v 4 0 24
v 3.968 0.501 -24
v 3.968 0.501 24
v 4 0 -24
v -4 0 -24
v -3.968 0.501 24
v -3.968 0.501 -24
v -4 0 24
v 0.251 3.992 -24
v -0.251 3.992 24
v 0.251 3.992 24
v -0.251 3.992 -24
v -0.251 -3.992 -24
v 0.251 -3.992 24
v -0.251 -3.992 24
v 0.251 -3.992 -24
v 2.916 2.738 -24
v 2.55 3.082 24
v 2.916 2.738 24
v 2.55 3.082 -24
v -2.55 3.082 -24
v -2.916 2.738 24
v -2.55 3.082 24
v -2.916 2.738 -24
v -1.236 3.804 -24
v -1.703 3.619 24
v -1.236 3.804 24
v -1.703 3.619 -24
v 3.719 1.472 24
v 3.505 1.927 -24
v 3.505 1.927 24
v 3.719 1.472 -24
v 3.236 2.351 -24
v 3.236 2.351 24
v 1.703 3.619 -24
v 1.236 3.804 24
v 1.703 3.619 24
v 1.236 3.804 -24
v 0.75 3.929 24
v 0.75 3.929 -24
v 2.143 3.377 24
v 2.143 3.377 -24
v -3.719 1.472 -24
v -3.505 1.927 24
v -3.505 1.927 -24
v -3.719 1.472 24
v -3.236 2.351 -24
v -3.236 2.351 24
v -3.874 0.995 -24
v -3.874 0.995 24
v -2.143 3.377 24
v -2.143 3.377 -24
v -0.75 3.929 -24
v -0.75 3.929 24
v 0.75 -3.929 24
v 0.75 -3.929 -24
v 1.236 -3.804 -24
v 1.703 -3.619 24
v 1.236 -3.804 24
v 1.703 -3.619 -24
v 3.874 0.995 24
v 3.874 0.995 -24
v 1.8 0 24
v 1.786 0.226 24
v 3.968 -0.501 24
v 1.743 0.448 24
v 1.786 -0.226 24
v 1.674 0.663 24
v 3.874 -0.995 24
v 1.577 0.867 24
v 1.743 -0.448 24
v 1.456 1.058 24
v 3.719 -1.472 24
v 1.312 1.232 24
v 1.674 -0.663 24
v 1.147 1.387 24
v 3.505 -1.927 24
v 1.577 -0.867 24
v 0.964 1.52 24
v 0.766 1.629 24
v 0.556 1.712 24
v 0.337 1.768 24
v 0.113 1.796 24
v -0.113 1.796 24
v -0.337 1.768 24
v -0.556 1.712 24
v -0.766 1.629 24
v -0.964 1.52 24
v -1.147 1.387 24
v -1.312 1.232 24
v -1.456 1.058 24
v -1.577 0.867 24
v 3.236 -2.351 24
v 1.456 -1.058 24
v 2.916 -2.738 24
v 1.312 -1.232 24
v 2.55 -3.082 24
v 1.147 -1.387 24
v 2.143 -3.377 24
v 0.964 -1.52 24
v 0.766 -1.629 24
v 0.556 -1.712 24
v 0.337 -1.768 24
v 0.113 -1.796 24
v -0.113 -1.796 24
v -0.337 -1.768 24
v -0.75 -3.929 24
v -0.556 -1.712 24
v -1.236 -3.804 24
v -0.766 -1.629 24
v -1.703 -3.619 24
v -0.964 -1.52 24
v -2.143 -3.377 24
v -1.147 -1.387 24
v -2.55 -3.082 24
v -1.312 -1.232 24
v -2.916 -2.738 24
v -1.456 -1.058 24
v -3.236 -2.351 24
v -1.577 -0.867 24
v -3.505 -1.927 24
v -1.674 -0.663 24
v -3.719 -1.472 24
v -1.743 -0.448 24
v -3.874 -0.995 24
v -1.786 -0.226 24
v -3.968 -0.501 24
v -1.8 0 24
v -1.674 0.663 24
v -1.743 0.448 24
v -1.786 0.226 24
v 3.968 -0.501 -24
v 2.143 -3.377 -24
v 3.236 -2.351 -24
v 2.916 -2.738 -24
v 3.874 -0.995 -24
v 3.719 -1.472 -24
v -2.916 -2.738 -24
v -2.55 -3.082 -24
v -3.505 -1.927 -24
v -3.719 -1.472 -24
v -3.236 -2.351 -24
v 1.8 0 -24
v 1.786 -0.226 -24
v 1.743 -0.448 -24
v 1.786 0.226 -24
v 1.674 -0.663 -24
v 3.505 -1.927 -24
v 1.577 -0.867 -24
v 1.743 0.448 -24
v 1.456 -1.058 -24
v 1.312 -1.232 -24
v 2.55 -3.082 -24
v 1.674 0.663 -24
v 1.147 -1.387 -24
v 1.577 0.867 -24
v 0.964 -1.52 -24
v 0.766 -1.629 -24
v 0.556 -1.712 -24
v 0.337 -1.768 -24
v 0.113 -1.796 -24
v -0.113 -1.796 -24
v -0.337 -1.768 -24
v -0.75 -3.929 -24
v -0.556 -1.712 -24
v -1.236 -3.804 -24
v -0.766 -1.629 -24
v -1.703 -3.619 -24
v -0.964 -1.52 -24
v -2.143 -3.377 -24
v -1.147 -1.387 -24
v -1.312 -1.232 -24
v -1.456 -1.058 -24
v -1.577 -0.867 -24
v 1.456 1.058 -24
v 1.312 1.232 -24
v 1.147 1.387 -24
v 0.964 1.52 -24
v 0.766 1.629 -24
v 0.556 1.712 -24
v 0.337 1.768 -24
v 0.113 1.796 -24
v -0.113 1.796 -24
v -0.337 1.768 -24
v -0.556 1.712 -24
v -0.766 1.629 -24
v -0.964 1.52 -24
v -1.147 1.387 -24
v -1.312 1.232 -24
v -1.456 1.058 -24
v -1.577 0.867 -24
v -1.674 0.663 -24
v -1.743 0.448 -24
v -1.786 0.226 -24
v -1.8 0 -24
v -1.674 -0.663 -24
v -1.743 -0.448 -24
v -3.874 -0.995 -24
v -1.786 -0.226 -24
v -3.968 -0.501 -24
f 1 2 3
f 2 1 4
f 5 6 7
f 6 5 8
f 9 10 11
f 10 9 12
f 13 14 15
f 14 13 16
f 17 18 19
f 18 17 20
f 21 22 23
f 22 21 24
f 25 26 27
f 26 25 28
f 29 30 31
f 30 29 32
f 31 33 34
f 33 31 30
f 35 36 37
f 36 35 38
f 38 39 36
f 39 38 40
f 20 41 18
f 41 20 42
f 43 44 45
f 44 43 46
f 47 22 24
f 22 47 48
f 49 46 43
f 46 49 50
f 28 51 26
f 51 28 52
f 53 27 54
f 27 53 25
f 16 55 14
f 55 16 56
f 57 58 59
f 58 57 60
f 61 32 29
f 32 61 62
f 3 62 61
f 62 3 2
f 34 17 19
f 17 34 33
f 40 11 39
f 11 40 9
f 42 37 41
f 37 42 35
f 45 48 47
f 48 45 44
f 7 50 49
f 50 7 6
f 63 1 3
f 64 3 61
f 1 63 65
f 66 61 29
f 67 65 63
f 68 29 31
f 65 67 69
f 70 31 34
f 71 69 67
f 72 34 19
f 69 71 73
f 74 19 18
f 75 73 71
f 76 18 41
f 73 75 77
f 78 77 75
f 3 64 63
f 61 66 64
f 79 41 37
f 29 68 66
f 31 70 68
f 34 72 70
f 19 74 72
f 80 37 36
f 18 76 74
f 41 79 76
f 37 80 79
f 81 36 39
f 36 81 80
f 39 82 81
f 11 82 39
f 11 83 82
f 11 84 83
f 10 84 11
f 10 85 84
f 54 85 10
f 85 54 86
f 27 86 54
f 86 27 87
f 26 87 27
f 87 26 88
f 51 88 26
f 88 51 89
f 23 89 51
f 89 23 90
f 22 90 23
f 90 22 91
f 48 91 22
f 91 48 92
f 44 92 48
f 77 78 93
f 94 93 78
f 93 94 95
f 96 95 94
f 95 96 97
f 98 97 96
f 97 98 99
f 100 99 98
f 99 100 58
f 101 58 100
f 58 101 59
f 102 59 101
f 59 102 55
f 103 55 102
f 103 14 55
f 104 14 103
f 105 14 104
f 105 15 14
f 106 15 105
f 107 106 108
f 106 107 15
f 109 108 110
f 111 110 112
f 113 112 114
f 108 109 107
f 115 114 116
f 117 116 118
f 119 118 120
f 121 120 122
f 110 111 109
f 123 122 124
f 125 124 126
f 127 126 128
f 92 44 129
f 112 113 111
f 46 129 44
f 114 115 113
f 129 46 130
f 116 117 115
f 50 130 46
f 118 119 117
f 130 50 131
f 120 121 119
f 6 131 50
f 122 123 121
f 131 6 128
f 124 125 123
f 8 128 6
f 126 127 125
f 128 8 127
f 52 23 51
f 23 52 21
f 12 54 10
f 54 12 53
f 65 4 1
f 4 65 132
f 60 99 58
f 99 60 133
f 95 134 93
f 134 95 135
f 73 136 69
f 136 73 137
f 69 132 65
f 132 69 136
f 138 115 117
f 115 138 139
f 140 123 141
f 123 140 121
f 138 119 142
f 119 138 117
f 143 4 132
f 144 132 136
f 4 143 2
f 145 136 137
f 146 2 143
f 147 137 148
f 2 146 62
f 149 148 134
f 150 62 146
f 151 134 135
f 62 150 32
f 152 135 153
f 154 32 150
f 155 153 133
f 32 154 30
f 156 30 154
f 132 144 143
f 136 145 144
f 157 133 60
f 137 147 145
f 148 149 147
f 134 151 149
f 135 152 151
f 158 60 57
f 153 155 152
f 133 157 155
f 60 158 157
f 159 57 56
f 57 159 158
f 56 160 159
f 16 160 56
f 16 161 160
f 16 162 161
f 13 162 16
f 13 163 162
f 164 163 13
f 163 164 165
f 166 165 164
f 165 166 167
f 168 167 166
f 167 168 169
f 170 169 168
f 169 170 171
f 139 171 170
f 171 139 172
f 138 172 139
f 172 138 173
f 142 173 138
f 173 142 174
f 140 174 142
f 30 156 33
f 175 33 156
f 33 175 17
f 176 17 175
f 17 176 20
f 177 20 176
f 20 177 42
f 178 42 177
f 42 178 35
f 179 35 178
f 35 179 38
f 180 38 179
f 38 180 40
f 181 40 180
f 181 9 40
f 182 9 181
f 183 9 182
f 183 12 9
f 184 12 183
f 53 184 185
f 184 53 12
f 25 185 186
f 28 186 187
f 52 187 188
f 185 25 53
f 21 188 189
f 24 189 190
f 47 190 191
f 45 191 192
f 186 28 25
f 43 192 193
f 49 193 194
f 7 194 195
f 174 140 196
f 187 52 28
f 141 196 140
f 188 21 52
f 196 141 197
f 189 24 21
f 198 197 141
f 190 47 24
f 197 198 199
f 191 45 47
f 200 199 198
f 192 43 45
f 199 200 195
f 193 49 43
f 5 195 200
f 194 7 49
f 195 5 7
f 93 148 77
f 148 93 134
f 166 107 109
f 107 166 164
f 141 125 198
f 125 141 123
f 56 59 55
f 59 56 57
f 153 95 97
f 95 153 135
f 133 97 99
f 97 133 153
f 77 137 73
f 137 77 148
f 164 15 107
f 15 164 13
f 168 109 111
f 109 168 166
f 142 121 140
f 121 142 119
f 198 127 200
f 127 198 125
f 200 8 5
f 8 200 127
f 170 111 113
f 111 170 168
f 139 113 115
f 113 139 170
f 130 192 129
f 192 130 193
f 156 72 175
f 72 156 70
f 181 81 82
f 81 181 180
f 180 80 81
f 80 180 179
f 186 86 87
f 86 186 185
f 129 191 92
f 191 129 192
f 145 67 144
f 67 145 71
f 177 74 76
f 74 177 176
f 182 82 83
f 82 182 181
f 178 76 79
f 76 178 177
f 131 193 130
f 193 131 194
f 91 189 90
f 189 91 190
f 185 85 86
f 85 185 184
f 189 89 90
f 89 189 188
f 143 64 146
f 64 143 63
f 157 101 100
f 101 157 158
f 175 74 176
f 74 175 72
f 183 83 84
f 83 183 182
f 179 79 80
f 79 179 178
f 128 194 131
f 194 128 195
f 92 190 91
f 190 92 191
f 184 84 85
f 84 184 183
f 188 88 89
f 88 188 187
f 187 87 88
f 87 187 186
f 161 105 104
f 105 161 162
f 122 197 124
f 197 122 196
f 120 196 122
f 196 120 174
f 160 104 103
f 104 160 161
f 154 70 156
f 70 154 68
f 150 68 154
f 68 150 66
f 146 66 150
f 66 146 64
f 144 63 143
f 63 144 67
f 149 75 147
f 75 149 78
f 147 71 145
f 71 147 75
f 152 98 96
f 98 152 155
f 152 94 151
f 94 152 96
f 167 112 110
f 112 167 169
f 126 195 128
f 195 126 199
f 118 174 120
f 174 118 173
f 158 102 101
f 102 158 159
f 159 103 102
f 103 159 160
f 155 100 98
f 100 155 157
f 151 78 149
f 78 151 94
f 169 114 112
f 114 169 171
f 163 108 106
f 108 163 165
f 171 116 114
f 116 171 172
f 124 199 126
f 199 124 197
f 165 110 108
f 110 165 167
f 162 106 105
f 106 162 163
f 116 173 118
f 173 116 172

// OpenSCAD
$fn = 50;


difference() {
	union() {
		translate(v = [0, 0, -24.0000000000]) {
			cylinder(h = 48, r = 4.0000000000);
		}
	}
	union() {
		translate(v = [0, 0, -100.0000000000]) {
			cylinder(h = 200, r = 1.8000000000);
		}
	}
}
